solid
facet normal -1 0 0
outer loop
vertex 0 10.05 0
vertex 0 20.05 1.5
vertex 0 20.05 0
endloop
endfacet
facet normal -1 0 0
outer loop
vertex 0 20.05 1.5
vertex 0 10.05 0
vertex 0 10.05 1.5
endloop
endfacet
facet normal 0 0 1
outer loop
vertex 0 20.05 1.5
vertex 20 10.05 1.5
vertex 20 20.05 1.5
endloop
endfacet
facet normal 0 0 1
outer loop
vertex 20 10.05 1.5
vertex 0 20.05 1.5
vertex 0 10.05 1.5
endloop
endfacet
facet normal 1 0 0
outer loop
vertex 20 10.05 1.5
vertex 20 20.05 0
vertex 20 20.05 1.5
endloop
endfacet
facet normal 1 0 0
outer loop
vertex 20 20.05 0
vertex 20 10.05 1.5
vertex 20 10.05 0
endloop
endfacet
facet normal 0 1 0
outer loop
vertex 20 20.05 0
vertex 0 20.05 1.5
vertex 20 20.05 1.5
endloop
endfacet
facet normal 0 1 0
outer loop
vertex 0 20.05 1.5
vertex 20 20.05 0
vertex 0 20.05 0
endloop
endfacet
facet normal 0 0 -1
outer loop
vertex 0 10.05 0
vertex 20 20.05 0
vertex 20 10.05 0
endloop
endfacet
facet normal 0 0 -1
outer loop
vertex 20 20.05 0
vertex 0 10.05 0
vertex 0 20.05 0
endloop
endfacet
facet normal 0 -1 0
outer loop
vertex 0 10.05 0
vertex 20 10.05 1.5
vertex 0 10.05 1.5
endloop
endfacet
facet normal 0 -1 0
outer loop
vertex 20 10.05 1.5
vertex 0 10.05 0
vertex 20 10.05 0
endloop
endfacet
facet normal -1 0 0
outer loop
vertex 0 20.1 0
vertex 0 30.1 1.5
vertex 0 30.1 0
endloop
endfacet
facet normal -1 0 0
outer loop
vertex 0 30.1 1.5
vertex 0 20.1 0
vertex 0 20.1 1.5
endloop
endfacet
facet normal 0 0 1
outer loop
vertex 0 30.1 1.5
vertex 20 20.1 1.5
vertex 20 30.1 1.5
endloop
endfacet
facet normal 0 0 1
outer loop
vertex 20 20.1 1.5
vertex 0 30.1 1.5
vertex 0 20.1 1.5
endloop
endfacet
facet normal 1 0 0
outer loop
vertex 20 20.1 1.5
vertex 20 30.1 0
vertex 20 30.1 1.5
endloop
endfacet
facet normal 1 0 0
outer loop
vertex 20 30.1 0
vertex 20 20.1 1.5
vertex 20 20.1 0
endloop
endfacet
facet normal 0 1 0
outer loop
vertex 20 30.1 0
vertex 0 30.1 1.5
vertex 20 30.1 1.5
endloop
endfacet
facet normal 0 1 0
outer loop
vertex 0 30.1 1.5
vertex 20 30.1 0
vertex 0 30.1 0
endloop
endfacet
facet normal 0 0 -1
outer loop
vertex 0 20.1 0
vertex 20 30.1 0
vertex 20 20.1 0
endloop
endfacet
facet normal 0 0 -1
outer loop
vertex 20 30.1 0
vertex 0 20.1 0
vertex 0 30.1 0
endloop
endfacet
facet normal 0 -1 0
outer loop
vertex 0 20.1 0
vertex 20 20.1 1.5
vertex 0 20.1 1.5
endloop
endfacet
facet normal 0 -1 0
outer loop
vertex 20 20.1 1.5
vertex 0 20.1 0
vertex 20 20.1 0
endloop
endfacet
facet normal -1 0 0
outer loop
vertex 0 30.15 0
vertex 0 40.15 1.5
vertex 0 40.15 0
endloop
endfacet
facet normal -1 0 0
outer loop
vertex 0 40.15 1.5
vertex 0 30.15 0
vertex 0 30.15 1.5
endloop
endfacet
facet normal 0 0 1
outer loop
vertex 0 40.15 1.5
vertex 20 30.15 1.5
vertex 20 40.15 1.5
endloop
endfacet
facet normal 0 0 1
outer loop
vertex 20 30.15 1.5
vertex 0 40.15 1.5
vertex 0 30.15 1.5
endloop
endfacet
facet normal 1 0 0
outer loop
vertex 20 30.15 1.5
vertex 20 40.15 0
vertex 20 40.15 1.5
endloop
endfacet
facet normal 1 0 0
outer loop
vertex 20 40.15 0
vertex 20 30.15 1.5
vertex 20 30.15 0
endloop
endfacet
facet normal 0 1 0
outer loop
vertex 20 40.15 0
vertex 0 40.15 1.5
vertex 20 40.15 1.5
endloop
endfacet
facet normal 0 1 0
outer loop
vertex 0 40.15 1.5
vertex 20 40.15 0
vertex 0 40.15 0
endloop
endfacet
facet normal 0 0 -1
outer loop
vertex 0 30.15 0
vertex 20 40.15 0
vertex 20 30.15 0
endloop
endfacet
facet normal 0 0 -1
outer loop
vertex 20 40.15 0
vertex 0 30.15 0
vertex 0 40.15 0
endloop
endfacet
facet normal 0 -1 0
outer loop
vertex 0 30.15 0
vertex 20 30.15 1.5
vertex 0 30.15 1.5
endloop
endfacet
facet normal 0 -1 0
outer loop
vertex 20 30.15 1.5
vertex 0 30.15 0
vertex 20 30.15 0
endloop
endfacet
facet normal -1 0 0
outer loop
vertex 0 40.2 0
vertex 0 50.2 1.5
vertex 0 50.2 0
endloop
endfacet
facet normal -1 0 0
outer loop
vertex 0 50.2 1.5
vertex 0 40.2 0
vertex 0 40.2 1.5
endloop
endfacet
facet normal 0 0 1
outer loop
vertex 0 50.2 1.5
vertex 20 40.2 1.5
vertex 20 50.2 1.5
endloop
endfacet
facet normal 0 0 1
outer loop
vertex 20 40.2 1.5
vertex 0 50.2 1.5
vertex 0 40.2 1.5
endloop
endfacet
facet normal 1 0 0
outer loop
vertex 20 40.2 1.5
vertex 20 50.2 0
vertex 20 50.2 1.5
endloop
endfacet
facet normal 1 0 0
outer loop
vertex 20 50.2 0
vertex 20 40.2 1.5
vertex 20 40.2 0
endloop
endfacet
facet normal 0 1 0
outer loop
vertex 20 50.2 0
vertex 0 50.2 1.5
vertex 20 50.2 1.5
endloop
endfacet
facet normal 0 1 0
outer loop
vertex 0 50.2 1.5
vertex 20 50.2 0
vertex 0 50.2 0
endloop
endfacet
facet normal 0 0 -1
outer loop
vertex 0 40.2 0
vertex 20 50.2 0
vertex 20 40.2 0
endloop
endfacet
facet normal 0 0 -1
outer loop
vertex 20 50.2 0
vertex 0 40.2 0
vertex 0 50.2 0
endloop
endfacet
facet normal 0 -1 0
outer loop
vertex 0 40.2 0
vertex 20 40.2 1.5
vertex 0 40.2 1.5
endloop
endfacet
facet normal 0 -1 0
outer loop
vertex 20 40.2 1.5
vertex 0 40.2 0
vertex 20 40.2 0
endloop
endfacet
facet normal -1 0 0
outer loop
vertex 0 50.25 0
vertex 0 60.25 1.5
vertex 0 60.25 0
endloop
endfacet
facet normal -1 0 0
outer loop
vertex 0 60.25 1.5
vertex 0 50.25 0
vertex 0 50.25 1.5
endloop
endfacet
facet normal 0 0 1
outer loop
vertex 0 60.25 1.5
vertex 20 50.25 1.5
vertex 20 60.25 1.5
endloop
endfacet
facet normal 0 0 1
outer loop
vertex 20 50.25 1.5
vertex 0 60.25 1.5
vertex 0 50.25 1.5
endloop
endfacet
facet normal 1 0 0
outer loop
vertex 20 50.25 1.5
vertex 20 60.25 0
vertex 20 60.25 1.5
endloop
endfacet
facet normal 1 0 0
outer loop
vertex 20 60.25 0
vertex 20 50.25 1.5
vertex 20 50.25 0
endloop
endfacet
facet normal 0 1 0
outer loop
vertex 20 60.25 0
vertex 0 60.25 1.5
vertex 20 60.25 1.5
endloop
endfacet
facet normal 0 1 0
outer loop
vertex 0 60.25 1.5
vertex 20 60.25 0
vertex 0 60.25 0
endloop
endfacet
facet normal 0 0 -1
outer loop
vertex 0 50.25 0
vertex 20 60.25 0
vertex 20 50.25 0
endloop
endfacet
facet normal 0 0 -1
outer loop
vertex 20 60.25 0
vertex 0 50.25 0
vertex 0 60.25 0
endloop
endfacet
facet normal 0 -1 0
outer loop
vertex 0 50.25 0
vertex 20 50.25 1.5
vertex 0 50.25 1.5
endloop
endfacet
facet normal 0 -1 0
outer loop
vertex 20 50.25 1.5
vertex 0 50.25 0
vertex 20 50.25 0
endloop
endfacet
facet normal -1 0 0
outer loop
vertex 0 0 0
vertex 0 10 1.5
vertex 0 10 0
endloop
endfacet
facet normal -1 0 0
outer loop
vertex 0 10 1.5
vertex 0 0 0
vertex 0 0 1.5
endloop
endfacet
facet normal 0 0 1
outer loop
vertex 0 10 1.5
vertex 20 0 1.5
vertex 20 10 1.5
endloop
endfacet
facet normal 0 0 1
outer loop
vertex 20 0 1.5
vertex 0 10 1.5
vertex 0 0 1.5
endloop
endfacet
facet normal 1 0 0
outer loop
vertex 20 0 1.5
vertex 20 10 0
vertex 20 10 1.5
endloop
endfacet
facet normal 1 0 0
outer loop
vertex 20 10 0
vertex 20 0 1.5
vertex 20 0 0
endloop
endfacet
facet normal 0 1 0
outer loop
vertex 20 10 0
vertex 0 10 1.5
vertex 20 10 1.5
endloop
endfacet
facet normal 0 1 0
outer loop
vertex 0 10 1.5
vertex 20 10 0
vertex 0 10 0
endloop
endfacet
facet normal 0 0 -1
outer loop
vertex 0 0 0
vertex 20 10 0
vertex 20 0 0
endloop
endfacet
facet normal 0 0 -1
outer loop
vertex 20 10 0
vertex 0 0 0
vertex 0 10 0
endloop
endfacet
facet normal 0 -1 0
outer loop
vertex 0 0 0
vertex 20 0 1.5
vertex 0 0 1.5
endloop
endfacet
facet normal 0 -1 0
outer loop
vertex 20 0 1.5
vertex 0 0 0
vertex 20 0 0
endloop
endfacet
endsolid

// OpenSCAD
WallThickness = 1.5;

BaseWidth = 20;
BaseDepth = 10;

cube(size=[BaseWidth, BaseDepth, WallThickness], center=false);

for ( i = [1 : 5] ){
translate([0, (BaseDepth+0.05)*i, 0])
cube(size=[BaseWidth, BaseDepth, WallThickness], center=false);
}
